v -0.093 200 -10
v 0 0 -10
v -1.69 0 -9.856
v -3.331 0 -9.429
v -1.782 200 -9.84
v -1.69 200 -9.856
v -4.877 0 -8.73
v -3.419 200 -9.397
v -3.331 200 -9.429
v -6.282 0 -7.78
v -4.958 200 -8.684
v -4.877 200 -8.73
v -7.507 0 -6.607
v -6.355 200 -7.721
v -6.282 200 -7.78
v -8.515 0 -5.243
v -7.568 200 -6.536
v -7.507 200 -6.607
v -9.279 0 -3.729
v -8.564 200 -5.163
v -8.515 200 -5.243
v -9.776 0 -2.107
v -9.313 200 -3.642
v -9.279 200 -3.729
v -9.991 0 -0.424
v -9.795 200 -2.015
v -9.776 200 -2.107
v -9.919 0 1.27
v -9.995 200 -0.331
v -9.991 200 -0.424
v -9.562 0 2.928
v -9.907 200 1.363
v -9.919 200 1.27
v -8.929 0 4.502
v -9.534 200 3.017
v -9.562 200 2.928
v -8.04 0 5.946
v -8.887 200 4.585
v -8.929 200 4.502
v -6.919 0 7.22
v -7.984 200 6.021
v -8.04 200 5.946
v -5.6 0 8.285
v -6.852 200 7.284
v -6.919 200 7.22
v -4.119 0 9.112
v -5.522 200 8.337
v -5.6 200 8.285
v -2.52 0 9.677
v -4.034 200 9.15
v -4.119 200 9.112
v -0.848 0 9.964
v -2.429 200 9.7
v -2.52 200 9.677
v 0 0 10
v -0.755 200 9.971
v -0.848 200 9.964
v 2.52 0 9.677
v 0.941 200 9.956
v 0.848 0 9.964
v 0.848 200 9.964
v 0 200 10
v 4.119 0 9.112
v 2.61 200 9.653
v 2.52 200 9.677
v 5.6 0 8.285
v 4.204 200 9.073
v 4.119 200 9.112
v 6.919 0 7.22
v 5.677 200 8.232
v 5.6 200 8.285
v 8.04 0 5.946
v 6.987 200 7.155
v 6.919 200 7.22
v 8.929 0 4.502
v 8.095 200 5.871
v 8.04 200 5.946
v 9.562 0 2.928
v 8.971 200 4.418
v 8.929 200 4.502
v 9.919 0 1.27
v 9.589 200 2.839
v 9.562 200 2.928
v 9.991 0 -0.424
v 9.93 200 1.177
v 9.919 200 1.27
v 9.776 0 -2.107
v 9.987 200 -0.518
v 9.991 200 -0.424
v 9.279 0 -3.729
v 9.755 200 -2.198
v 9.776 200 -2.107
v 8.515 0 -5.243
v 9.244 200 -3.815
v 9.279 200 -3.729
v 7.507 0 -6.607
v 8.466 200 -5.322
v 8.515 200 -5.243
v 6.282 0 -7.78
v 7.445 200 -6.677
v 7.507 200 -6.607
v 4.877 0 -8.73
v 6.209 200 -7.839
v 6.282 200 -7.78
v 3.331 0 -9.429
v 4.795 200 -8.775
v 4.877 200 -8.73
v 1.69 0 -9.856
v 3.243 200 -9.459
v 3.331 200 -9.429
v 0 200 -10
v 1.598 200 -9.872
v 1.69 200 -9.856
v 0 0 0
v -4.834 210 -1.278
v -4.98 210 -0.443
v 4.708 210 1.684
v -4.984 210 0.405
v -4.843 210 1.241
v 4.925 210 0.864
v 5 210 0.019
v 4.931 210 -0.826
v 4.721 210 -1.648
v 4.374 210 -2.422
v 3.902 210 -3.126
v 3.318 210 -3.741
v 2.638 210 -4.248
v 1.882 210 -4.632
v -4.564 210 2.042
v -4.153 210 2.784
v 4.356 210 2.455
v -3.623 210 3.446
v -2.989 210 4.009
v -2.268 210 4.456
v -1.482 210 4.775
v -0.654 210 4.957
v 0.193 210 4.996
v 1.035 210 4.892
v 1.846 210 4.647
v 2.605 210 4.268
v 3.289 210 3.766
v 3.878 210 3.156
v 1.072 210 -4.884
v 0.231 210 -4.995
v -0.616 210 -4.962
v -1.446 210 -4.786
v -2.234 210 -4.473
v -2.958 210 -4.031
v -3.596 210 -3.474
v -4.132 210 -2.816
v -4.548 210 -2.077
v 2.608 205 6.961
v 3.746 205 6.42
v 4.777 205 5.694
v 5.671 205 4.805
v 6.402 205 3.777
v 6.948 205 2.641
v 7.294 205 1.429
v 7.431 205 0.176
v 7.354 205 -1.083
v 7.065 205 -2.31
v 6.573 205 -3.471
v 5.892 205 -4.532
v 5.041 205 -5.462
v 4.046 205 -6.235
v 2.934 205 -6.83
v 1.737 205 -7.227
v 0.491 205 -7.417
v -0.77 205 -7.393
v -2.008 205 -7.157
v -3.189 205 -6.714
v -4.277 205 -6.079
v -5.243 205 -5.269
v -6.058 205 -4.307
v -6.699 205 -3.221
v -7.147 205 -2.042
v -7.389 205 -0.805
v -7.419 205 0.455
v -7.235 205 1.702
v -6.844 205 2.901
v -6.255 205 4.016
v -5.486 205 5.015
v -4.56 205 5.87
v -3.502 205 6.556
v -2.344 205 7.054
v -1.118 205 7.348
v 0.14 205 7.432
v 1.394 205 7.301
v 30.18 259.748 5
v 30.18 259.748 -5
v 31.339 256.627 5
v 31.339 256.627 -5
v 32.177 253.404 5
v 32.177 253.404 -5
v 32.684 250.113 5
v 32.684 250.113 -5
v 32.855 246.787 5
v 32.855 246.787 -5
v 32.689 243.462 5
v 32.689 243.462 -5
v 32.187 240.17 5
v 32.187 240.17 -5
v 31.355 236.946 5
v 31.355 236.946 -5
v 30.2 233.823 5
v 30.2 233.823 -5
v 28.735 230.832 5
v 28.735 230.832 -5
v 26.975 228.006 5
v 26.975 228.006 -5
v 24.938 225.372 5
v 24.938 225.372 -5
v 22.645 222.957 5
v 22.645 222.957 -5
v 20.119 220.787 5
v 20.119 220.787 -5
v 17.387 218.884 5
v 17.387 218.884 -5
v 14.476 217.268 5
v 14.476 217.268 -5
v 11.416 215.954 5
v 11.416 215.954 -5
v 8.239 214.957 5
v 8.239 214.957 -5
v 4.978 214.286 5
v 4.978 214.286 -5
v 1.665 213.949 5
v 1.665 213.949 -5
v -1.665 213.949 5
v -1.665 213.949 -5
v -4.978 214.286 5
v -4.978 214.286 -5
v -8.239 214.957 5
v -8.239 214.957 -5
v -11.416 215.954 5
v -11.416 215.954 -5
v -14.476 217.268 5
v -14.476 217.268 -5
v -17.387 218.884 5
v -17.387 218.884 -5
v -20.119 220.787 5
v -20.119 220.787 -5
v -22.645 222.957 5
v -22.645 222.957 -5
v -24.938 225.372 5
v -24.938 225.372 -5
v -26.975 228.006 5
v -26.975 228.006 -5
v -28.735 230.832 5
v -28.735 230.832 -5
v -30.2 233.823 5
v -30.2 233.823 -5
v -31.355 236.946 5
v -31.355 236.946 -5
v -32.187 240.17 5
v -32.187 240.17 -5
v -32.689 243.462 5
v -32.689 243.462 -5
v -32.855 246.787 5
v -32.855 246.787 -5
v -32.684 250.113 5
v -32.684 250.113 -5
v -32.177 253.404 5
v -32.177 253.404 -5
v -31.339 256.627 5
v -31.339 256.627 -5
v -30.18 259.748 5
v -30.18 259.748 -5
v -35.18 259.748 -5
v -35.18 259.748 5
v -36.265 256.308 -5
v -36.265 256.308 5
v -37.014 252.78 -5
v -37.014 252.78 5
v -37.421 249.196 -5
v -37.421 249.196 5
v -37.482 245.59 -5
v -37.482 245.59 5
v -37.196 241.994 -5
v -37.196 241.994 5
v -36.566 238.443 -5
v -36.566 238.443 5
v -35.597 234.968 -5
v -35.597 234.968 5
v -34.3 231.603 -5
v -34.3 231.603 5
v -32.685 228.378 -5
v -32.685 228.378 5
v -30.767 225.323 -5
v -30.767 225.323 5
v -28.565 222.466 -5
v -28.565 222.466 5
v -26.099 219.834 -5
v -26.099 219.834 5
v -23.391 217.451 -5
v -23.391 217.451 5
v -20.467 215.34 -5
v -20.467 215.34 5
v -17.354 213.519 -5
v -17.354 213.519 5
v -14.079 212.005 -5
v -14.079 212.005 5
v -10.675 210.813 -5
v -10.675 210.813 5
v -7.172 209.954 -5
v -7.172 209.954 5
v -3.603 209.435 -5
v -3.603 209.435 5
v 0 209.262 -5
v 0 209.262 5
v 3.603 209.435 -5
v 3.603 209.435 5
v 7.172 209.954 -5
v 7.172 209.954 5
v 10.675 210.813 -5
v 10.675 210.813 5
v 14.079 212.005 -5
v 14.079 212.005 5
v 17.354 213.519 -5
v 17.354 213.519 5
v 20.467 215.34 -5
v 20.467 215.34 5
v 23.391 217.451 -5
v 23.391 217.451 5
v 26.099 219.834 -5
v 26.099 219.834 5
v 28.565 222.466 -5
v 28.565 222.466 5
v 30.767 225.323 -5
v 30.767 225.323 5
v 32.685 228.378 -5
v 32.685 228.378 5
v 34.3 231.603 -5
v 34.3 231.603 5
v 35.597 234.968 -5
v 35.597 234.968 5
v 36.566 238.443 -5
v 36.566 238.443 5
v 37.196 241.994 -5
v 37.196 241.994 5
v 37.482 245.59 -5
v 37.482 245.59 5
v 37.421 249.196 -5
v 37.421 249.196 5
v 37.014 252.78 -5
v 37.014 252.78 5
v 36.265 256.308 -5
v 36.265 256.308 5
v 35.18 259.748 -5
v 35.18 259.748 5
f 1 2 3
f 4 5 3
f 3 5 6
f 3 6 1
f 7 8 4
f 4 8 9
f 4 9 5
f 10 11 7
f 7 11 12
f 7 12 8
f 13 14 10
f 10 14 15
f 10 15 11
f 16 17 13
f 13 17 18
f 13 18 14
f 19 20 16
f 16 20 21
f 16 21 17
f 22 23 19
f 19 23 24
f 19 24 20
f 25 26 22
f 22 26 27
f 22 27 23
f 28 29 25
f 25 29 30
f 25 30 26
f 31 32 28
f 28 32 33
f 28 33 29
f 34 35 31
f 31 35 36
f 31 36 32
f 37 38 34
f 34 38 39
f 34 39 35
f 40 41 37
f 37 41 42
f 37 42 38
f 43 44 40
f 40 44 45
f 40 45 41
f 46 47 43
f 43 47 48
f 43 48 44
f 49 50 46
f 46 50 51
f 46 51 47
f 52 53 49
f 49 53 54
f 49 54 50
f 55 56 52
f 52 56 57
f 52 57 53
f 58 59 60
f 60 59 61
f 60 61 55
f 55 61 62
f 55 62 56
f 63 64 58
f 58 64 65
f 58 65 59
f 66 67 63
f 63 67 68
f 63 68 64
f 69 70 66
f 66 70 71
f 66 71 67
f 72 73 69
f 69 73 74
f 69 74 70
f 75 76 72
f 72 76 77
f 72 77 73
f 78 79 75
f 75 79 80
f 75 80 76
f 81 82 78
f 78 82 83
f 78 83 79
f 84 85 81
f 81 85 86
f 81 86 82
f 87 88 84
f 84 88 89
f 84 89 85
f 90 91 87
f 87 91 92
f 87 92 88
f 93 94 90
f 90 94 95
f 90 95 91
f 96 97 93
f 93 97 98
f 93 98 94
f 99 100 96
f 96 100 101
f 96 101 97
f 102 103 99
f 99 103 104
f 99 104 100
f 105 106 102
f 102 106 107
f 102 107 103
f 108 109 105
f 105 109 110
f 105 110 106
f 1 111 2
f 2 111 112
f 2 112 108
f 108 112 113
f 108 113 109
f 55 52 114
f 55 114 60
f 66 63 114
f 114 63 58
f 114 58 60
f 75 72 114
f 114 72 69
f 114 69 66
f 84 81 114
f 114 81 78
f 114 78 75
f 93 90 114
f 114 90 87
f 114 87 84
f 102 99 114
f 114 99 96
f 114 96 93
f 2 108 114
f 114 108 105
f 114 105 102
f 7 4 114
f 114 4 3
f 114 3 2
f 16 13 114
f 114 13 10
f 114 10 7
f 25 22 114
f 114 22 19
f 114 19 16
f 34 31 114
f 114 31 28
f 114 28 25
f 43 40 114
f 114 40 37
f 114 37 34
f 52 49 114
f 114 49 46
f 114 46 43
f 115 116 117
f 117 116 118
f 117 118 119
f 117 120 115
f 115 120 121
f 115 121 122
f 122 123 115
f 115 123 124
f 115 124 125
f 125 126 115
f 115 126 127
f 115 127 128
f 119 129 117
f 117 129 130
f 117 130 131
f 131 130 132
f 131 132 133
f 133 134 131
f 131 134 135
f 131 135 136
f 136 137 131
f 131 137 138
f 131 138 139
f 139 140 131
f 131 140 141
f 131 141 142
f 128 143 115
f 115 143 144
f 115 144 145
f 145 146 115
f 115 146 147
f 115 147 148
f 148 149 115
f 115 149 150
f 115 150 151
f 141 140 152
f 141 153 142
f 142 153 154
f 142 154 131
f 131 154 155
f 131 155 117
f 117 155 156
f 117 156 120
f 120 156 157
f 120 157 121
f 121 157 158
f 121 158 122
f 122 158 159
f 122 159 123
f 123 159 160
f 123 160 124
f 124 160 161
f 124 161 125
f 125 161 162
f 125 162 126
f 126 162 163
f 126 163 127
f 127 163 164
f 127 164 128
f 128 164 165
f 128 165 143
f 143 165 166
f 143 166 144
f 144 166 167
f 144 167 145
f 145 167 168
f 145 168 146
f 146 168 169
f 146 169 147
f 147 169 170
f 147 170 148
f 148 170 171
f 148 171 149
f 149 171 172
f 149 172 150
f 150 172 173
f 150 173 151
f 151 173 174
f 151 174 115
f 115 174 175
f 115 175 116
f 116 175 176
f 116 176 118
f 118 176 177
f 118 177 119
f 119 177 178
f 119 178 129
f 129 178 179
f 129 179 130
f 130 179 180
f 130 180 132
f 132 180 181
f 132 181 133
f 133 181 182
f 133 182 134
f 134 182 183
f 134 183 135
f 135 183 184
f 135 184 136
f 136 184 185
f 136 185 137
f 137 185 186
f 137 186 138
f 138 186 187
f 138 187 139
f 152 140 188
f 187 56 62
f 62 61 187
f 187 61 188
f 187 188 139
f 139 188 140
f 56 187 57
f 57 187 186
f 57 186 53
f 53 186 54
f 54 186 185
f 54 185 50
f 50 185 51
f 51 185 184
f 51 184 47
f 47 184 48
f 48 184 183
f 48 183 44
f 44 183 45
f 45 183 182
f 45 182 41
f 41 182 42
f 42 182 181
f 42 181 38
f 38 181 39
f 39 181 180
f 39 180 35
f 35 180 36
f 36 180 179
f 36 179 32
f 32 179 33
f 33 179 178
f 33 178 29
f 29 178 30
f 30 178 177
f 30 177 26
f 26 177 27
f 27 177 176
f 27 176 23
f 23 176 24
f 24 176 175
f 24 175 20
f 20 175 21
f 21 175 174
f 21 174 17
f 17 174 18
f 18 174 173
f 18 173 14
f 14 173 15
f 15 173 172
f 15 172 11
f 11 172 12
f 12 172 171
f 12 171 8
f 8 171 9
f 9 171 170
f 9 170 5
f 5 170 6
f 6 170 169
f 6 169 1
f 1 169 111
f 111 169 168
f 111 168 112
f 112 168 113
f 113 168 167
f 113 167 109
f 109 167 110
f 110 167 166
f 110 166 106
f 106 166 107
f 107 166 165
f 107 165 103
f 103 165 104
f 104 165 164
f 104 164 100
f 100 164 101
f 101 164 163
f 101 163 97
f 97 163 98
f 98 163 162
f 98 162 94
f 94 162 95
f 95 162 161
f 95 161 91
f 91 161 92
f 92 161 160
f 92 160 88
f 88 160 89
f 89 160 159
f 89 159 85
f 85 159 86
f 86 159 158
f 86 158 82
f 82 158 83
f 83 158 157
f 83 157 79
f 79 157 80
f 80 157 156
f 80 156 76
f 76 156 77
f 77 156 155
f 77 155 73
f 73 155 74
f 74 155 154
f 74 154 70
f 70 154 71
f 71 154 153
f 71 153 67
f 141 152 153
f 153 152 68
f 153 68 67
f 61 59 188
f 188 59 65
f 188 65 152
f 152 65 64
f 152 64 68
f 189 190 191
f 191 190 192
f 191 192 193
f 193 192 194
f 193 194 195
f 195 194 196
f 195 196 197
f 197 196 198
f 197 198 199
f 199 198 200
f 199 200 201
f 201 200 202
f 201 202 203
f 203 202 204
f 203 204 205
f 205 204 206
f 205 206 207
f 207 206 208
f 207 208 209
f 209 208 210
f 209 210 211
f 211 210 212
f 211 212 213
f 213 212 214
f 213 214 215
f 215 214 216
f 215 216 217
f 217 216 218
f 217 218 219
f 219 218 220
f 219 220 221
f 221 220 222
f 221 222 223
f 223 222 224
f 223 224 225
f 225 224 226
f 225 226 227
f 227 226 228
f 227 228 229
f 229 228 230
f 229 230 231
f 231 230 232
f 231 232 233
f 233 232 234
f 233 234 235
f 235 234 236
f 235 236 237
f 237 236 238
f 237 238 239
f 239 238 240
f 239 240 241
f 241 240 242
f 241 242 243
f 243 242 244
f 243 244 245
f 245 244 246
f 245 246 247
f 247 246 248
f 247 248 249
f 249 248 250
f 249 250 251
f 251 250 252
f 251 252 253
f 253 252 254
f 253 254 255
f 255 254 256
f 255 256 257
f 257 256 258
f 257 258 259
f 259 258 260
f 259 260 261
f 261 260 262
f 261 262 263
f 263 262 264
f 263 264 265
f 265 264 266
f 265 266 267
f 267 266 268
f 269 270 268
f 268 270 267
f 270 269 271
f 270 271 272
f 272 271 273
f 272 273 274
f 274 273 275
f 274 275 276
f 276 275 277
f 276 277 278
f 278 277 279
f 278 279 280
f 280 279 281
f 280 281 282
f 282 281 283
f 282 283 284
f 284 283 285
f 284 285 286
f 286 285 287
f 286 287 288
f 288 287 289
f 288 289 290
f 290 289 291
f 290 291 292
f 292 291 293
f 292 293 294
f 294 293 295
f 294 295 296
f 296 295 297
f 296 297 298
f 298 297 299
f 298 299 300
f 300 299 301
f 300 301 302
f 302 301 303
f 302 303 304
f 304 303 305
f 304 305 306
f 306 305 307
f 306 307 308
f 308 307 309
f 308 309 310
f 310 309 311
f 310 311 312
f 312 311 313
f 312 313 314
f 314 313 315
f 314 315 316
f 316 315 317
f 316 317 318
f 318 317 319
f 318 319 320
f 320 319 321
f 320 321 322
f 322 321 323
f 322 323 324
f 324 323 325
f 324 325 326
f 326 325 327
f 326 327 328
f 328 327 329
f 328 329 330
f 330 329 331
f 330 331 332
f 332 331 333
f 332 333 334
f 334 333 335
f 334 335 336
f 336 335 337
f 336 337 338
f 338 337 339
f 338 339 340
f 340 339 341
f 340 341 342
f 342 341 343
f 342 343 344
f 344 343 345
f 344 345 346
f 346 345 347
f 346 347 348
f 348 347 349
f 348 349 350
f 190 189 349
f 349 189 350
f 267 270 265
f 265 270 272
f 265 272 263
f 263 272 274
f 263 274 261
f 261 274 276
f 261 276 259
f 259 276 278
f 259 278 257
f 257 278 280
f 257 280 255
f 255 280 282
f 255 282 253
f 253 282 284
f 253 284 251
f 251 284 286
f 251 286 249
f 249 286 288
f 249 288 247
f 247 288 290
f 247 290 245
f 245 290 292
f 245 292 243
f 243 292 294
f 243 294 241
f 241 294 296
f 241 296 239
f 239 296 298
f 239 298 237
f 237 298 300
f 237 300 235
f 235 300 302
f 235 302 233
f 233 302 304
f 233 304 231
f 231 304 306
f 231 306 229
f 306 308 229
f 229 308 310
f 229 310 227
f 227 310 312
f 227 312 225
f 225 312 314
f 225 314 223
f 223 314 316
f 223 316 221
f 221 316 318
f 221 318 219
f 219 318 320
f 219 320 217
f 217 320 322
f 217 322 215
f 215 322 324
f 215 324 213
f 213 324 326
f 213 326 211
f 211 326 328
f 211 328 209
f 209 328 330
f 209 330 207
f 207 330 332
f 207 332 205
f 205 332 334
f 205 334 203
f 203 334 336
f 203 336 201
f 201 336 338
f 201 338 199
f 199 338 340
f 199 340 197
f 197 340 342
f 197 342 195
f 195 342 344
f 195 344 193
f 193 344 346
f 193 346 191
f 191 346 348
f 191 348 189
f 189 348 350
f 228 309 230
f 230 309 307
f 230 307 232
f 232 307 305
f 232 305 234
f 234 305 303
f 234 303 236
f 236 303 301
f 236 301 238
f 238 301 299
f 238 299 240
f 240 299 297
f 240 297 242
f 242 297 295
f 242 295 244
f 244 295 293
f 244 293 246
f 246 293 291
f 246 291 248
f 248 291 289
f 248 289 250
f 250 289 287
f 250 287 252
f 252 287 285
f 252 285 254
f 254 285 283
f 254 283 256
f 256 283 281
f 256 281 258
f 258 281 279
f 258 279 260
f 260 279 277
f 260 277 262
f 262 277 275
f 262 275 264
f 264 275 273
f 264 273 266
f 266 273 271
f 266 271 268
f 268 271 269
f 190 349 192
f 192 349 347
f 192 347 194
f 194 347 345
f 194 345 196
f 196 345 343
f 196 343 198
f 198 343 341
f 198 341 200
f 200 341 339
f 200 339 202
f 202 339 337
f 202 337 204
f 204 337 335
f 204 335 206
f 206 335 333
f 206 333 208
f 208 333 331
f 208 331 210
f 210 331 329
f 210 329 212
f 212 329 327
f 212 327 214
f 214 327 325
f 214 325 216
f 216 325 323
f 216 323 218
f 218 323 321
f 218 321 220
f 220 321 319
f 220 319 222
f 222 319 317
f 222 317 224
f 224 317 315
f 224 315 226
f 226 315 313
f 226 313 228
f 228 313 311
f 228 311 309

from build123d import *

# Parameters (mm, degrees)
SKETCH_1_R           = 10
EXTRUDE_1_DEPTH      = 200
EXTRUDE_2_DEPTH      = 5
EXTRUDE_2_DEPTH_BACK = 5


with BuildPart() as part:
    # Эскиз1 → Бобышка-Вытянуть1 (new body)
    with BuildSketch(Plane(origin=(0, 0, 0), x_dir=(1, 0, 0), z_dir=(0, 1, 0))):
        with Locations(Location((0, 0, 0), (0, 0, 270))):
            Circle(SKETCH_1_R)
    extrude(amount=EXTRUDE_1_DEPTH)

    # По сечениям1: read off the stored shape, not the designer's step
    # По сечениям1: loft between two sections, ruled curve by curve
    loft_1_from = [
        Edge.make_bspline([(0.941083133, 200, 9.955619646), (20.852322425, 200, 8.07345338), (18.970156159, 200, -11.837785912), (-0.941083133, 200, -9.955619646), (-20.852322425, 200, -8.07345338), (-18.970156159, 200, 11.837785912), (0.941083133, 200, 9.955619646)], [0, 0, 0, 0, 0.5, 0.5, 0.5, 1, 1, 1, 1], 3, [1, 0.333333333, 0.333333333, 1, 0.333333333, 0.333333333, 1]),
    ]
    loft_1_to = [
        Edge.make_bspline([(1.846463267, 210, 4.646565765), (11.139594796, 210, 0.953639232), (7.446668263, 210, -8.339492298), (-1.846463267, 210, -4.646565765), (-11.139594796, 210, -0.953639232), (-7.446668263, 210, 8.339492298), (1.846463267, 210, 4.646565765)], [0, 0, 0, 0, 0.5, 0.5, 0.5, 1, 1, 1, 1], 3, [1, 0.333333333, 0.333333333, 1, 0.333333333, 0.333333333, 1]),
    ]
    loft_1 = Solid(Shell([*[Face.make_surface_from_curves(loft_1_from[k], loft_1_to[k]) for k in range(1)], Face(Wire(loft_1_from)), Face(Wire(loft_1_to))]))
    add(loft_1)


with BuildPart() as body_2:
    # Эскиз8 → Бобышка-Вытянуть2 (new, two sides: drawn at the far end of the back side and taken through both)
    with BuildSketch(Plane.XY.offset(-EXTRUDE_2_DEPTH_BACK)):
        with BuildLine():
            Line((-35.180049217, 259.748056851), (-30.180049217, 259.748056851))
            ThreePointArc((-30.180049217, 259.748056851), (0, 213.906800526), (30.180049217, 259.748056851))
            Line((30.180049217, 259.748056851), (35.180049217, 259.748056851))
            ThreePointArc((35.180049217, 259.748056851), (0, 209.261817044), (-35.180049217, 259.748056851))
        make_face()
    extrude(amount=EXTRUDE_2_DEPTH + EXTRUDE_2_DEPTH_BACK)


solid = Compound([part.part, body_2.part])
